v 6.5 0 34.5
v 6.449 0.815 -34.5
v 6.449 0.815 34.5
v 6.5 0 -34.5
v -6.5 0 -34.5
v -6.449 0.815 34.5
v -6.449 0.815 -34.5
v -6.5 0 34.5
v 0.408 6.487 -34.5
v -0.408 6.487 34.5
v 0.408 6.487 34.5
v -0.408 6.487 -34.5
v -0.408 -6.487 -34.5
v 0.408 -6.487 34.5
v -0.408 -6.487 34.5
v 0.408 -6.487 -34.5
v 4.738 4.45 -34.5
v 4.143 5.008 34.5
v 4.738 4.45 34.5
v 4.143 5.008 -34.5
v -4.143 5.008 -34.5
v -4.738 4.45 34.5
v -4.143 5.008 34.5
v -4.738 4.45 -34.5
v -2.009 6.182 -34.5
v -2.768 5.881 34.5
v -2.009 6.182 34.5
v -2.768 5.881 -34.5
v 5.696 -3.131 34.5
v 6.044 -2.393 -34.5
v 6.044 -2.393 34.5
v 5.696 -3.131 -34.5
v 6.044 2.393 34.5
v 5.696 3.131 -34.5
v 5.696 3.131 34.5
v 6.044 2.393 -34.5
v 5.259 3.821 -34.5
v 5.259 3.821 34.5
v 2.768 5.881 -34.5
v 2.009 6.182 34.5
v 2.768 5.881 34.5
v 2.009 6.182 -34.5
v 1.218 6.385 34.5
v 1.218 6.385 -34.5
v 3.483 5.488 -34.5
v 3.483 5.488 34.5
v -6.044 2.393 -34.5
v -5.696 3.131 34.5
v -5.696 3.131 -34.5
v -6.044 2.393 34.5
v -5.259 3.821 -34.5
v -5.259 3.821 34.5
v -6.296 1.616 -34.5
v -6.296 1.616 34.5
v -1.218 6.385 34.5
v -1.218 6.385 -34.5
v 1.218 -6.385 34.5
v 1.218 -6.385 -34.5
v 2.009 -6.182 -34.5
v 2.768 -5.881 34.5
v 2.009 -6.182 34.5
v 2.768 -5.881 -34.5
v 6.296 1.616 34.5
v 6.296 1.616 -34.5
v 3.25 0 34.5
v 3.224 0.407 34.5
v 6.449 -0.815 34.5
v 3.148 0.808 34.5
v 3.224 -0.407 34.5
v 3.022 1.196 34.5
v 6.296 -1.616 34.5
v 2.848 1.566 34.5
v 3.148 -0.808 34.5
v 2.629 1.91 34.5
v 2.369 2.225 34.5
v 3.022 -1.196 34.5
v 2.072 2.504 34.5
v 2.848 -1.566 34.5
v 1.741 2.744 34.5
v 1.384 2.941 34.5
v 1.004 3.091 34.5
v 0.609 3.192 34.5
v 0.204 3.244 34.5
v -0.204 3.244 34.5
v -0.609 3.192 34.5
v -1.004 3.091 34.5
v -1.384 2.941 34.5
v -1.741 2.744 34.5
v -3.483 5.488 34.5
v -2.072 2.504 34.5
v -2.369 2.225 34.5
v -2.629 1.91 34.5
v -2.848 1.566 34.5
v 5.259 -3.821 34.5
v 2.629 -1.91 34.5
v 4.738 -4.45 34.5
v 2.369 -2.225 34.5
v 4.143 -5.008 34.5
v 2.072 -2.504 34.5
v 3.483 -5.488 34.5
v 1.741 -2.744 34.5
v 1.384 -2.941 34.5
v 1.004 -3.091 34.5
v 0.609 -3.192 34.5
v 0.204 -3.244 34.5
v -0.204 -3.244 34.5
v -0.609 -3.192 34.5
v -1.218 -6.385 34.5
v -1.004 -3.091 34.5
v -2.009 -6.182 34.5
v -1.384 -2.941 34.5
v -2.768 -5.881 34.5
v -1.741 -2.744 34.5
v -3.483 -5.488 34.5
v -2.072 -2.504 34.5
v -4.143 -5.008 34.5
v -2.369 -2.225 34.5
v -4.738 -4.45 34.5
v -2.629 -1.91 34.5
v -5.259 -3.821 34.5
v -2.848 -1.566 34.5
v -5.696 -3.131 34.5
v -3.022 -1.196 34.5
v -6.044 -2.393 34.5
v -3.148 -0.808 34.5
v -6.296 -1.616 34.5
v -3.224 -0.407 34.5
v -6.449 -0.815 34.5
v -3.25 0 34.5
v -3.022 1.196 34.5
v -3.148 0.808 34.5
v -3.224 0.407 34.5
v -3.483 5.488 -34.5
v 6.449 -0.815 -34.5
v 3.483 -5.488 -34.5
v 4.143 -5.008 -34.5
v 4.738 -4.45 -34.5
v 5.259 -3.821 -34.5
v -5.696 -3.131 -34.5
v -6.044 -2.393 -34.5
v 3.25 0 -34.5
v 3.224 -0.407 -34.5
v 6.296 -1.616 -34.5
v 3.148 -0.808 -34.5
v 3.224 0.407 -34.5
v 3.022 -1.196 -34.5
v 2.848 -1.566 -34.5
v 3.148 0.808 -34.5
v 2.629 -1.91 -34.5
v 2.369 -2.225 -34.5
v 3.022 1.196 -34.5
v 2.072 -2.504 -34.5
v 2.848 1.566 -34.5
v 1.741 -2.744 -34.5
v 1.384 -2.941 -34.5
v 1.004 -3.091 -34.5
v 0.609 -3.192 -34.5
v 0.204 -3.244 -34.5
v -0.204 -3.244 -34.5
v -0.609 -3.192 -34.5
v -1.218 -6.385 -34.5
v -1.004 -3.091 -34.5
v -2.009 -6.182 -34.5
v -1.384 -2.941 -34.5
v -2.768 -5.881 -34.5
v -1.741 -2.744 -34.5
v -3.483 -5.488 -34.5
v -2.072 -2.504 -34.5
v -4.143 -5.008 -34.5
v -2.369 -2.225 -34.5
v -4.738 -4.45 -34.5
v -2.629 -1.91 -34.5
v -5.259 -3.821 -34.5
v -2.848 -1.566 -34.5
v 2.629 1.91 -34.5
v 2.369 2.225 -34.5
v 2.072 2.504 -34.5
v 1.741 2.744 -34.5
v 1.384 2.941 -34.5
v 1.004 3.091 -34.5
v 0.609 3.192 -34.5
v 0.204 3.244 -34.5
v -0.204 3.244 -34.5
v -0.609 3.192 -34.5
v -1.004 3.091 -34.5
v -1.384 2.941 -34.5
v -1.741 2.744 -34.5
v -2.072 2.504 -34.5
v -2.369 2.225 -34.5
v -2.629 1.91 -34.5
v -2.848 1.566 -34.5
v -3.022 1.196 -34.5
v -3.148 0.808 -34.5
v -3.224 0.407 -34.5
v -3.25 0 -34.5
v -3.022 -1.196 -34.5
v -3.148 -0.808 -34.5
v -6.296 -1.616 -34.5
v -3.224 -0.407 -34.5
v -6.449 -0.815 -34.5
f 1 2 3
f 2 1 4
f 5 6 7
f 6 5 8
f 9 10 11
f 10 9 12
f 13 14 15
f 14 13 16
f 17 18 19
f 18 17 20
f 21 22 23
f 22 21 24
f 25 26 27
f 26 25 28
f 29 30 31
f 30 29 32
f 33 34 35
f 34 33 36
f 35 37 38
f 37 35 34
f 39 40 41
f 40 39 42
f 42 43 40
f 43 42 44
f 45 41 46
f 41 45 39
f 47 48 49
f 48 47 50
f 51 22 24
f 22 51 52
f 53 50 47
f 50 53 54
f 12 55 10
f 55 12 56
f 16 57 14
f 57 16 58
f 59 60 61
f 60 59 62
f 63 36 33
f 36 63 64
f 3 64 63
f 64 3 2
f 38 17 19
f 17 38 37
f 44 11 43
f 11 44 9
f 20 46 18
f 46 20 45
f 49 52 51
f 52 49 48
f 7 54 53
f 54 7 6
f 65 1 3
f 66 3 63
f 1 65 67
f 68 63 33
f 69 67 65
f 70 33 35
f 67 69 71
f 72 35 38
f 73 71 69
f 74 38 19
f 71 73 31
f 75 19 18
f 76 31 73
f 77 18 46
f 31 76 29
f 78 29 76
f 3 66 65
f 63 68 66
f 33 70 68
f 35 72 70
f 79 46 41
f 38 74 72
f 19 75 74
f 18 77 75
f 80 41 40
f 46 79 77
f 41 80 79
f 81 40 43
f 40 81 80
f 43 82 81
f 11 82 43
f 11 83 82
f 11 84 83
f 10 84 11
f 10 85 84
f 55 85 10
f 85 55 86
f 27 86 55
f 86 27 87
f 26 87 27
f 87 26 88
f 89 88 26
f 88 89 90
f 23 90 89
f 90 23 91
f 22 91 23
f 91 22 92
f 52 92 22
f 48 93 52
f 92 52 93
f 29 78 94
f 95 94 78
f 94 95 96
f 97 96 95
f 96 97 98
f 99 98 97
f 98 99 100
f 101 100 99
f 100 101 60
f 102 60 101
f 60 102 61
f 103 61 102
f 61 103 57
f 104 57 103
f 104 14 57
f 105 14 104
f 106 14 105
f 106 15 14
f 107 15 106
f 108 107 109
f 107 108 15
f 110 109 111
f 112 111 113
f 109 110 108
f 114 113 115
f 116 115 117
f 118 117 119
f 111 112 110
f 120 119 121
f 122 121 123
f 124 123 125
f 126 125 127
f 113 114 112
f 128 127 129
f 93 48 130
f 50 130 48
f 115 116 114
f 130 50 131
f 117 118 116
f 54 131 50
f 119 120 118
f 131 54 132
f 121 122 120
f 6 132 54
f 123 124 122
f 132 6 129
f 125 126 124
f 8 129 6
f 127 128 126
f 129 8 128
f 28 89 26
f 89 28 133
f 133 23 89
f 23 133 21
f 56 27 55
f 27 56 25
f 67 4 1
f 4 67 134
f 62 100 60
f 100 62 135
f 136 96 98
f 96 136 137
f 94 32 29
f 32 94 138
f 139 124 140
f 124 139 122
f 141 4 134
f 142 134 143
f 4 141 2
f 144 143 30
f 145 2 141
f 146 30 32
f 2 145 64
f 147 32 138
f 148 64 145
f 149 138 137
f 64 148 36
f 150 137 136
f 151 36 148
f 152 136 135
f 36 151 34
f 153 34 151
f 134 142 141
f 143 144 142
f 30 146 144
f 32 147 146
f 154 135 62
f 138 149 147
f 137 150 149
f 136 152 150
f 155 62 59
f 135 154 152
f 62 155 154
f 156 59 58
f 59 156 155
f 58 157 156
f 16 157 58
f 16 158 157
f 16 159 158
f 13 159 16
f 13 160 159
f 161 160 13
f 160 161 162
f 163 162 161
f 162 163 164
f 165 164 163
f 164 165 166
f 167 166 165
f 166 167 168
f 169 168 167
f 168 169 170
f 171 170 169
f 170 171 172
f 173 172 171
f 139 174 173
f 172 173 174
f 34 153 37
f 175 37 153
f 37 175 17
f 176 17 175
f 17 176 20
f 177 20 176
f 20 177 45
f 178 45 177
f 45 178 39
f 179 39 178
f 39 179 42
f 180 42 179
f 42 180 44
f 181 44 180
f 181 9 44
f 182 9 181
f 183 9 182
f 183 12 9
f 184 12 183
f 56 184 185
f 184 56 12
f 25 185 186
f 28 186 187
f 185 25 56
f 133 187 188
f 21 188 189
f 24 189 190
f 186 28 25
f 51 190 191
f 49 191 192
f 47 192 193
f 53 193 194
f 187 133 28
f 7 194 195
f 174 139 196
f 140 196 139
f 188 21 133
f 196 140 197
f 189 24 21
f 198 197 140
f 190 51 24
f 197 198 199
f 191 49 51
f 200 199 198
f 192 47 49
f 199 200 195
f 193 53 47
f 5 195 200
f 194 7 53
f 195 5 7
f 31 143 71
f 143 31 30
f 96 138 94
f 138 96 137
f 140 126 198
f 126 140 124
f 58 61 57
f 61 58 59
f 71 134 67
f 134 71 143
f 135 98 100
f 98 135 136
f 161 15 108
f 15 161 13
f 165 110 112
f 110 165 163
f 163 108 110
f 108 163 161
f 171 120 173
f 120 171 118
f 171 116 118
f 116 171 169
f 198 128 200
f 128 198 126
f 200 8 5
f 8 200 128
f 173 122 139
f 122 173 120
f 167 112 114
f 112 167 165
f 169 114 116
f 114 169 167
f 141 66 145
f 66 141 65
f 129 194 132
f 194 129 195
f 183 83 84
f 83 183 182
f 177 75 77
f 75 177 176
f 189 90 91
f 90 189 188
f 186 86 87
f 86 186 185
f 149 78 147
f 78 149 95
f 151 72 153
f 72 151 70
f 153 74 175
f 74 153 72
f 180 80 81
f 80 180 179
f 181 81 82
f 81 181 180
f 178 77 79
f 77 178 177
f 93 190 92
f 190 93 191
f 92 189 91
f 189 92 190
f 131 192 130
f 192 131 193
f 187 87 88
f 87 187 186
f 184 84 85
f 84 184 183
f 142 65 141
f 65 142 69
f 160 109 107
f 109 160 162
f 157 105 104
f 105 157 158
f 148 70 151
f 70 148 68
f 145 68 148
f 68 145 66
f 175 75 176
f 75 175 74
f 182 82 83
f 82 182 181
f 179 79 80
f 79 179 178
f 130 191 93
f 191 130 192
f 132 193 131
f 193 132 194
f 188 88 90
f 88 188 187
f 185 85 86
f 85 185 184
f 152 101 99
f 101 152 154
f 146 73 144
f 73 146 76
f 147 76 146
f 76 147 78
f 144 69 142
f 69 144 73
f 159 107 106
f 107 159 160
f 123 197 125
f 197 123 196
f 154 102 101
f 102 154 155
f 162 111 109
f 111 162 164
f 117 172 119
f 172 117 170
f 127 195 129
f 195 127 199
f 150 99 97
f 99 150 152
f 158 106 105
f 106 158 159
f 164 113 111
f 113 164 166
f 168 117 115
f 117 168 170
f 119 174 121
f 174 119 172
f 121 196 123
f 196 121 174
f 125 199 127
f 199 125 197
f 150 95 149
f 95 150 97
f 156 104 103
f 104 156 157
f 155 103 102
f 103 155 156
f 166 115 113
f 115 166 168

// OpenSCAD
$fn = 50;


difference() {
	union() {
		translate(v = [0, 0, -34.5000000000]) {
			cylinder(h = 69, r = 6.5000000000);
		}
	}
	union() {
		translate(v = [0, 0, -100.0000000000]) {
			cylinder(h = 200, r = 3.2500000000);
		}
	}
}
